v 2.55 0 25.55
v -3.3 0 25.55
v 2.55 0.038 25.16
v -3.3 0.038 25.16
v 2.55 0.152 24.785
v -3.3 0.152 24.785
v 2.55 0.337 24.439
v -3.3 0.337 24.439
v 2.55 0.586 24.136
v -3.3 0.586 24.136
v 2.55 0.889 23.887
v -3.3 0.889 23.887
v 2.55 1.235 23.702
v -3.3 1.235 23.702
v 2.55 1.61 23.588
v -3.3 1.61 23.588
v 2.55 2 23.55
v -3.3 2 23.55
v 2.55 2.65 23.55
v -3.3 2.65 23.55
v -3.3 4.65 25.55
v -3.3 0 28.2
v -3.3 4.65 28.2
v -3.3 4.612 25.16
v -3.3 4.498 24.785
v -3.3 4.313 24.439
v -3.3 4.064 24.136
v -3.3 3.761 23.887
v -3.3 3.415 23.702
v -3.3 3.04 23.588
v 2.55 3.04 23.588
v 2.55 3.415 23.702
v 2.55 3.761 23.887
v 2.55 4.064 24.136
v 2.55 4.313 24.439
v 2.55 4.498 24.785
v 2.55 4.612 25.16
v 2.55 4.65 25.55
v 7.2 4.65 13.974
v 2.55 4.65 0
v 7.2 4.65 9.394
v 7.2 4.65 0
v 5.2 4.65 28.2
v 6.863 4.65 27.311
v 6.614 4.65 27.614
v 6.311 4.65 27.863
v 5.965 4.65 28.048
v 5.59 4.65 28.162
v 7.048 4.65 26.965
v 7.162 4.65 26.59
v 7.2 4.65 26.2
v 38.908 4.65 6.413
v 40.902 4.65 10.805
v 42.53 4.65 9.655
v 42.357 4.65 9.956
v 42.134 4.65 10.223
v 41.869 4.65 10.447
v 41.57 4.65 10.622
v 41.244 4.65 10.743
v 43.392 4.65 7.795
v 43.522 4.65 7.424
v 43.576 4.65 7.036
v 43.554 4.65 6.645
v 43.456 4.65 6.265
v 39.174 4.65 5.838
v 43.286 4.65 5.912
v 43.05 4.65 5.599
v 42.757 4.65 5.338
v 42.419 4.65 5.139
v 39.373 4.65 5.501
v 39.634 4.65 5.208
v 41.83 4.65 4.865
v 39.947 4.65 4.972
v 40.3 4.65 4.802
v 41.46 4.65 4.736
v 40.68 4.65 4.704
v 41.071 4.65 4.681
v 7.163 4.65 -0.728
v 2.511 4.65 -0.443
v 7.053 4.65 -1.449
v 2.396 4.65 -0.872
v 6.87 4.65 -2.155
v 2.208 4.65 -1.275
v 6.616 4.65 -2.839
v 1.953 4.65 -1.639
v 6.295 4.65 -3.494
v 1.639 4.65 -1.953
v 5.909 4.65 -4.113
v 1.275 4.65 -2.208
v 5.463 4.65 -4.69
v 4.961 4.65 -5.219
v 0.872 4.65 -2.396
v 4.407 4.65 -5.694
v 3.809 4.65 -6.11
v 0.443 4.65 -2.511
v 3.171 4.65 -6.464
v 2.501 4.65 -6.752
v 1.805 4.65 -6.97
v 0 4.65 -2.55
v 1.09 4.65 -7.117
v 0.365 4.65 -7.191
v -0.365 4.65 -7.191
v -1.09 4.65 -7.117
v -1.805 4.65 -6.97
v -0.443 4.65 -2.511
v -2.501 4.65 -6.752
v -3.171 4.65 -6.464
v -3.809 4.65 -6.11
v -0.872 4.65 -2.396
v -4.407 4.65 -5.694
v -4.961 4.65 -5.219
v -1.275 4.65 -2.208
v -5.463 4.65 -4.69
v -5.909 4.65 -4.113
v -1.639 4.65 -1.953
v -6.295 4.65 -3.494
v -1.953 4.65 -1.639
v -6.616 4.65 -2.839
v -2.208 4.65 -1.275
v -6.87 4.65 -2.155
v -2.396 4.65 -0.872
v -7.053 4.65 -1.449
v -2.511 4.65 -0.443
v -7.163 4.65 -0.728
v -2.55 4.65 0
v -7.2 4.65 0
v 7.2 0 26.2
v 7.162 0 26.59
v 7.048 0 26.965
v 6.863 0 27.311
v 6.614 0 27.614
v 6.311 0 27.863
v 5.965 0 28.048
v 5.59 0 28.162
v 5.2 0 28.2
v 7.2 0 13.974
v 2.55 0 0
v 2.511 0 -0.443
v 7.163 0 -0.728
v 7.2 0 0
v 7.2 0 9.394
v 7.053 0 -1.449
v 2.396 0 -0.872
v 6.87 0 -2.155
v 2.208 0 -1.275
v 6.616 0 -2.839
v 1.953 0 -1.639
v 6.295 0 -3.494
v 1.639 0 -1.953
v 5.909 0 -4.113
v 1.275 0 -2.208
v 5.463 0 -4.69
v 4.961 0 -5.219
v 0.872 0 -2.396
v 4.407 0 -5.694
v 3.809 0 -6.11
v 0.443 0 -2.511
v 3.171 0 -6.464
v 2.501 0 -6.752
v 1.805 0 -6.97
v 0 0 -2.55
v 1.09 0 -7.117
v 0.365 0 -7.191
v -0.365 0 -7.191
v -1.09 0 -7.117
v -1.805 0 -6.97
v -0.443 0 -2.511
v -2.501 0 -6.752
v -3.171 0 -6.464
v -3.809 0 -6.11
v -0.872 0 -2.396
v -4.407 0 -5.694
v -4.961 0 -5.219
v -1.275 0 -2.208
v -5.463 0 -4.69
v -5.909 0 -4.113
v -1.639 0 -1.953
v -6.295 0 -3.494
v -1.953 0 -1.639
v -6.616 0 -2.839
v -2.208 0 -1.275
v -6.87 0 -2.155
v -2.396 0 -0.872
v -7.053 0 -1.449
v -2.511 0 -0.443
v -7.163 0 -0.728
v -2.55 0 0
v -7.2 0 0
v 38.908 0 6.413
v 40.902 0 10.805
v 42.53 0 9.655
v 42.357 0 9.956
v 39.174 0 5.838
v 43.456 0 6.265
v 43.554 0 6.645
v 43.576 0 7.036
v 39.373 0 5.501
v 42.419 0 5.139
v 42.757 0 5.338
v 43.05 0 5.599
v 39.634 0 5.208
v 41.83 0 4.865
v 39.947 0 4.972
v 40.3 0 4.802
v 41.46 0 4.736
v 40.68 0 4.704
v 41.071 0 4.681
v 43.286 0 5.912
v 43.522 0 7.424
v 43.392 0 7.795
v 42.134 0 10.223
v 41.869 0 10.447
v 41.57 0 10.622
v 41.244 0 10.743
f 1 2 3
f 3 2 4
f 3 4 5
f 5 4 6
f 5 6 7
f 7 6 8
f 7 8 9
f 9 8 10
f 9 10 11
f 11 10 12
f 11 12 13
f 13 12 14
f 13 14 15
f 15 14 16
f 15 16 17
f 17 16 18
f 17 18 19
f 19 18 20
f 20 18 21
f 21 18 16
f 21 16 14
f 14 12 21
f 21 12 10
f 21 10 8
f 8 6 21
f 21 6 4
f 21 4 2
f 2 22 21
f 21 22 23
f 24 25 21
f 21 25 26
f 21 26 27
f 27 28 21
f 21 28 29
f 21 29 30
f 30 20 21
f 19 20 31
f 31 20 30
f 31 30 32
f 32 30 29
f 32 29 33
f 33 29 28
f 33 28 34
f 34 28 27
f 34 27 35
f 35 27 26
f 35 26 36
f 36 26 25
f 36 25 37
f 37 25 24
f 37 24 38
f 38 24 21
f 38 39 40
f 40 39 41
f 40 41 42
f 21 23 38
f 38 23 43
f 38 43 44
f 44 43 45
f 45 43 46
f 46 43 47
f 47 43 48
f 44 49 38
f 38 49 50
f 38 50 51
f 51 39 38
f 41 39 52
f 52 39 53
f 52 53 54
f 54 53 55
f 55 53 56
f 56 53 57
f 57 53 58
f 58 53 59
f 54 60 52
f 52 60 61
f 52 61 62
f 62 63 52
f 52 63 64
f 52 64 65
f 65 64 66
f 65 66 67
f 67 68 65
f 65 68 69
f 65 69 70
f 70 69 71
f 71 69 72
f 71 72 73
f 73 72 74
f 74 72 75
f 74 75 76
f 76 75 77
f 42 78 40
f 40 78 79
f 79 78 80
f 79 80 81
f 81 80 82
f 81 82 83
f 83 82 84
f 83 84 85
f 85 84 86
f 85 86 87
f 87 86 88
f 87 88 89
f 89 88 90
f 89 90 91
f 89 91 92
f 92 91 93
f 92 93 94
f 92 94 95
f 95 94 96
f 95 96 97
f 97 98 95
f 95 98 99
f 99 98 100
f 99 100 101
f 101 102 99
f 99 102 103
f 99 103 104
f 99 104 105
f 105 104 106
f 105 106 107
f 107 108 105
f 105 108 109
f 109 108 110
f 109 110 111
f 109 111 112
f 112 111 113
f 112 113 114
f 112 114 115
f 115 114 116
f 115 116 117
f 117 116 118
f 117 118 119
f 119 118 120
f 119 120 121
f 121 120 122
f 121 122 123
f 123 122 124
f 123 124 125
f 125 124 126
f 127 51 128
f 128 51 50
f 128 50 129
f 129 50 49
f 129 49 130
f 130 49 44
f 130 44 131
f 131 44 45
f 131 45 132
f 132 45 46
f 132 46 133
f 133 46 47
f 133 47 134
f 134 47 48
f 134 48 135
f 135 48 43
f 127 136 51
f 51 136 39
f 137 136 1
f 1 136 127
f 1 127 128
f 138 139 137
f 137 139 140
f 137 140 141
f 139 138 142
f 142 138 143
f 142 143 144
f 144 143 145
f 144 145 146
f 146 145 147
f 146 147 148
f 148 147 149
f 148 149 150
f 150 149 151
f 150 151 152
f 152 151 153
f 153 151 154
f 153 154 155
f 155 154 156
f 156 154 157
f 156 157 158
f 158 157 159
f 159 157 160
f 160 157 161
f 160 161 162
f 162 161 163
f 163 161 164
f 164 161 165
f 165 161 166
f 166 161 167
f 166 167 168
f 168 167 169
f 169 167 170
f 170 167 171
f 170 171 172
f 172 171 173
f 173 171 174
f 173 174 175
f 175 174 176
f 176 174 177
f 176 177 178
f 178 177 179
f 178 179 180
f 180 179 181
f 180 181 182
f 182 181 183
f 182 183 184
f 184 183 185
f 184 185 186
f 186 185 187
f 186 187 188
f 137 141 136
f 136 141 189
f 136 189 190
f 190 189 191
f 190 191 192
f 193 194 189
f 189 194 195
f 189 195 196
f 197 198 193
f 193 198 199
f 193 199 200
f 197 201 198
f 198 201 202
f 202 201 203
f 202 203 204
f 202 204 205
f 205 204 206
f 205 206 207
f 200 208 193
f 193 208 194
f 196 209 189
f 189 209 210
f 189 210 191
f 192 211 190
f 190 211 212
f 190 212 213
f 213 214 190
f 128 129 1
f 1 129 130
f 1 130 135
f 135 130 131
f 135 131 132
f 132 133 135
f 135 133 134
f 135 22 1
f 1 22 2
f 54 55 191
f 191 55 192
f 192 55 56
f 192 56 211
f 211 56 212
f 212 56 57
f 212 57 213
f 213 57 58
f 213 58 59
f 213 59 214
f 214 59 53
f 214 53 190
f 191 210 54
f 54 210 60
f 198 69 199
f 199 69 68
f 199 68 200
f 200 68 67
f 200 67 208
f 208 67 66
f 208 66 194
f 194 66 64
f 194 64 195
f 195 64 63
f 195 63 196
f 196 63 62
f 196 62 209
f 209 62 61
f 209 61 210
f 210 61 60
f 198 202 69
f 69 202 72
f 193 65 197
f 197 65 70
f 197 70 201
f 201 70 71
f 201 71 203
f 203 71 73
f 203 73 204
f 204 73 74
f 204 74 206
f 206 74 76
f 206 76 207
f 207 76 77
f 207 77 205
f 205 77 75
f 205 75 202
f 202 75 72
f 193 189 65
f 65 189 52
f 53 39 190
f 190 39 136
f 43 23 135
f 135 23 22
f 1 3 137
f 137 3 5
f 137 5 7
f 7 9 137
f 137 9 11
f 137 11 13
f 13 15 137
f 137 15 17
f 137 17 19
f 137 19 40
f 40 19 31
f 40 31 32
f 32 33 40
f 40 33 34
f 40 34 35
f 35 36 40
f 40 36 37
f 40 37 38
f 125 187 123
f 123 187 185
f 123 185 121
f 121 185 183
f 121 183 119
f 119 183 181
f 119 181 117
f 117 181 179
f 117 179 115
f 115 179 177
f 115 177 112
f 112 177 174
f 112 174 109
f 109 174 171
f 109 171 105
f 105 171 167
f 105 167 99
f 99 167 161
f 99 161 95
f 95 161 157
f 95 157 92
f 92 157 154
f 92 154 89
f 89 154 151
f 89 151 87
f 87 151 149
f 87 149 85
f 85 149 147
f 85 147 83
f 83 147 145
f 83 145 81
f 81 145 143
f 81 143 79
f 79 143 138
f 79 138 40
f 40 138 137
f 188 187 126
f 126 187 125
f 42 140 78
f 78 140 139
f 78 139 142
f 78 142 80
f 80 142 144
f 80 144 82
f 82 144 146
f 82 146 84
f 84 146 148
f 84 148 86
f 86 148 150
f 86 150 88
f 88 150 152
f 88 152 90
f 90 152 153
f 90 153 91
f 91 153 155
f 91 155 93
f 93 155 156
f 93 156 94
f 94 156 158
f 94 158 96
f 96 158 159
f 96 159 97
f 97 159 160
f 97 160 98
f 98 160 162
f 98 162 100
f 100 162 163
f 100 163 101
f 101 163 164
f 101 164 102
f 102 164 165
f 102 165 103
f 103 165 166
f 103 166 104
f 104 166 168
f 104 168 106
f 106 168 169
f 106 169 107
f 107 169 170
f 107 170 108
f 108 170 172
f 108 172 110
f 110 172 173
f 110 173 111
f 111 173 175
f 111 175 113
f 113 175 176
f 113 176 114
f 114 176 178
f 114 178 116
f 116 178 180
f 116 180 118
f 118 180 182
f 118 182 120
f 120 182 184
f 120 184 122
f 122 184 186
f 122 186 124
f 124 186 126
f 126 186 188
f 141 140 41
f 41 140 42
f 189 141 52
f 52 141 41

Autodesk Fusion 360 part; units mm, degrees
sketch "Sketch1" plane through (0, 0, 0) normal (0, 1, 0) x (1, 0, 0)
  circle A0 centre (0, 0) radius 7.2
  circle A1 centre (0, 0) radius 2.55
  line L0 (7.2, 0) -> (2.55, 0)
  line L1 (2.55, 0) -> (2.55, -28.2)
  line L2 (2.55, -28.2) -> (7.2, -28.2)
  line L3 (7.2, -28.2) -> (7.2, 0)
  line L4 (7.2, -28.2) -> (-3.3, -28.2)
  line L5 (-3.3, -28.2) -> (-3.3, -23.55)
  line L6 (-3.3, -23.55) -> (7.2, -23.55)
  line L7 (7.2, -23.55) -> (7.2, -28.2)
  line L8 (2.55, 0) -> (-7.2, 0)
  line L9 (7.2, -5.8) -> (7.2, -1.15)
  line L10 (7.2, -13.9742) -> (42.0463, -10.6976)
  line L11 (42.0463, -10.6976) -> (41.6194, -6.1577)
  line L12 (41.6194, -6.1577) -> (6.7731, -9.4343)
  line L13 (6.7731, -9.4343) -> (7.2, -13.9742)
  line L14 (42.0463, -10.6976) -> (37.8278, -8.7415)
  line L15 (37.8278, -8.7415) -> (40.0153, -4.024)
  line L16 (40.0153, -4.024) -> (44.2339, -5.9802)
  line L17 (44.2339, -5.9802) -> (42.0463, -10.6976)
  dimension "d1" = 14.4
  dimension "d2" = 5.1
  dimension "d3" = 4.65
  dimension "d4" = 28.2
  dimension "d5" = 10.5
  dimension "d6" = 4.65
  dimension "d16" = 35
  dimension "d17" = 4.56
  dimension "d18" = 4.65
  dimension "d19" = 5.2
extrude "Extrude1" add sketch "Sketch1" along normal blind 4.65 contours A0 A1 L0 L8 | A0 L1 L3 L6 L9 L12 L13 | A0 L0 L1 | L1 L2 L3 L4 L6 L7 | L1 L4 L5 L6 | L3 L10 L12 L14 L15 | L3 L12 L13 | L11 L12 L15 L16 L17 | L11 L12 L14 L15
fillet "Fillet1" radius 2 3 edges at (40.0153, 2.325, 4.024) (44.2339, 2.325, 5.9802) (42.0463, 2.325, 10.6976)
fillet "Fillet2" radius 2 1 edges at (7.2, 2.325, 28.2)
fillet "Fillet3" radius 2 2 edges at (-0.375, 4.65, 23.55) (-0.375, 0, 23.55)
